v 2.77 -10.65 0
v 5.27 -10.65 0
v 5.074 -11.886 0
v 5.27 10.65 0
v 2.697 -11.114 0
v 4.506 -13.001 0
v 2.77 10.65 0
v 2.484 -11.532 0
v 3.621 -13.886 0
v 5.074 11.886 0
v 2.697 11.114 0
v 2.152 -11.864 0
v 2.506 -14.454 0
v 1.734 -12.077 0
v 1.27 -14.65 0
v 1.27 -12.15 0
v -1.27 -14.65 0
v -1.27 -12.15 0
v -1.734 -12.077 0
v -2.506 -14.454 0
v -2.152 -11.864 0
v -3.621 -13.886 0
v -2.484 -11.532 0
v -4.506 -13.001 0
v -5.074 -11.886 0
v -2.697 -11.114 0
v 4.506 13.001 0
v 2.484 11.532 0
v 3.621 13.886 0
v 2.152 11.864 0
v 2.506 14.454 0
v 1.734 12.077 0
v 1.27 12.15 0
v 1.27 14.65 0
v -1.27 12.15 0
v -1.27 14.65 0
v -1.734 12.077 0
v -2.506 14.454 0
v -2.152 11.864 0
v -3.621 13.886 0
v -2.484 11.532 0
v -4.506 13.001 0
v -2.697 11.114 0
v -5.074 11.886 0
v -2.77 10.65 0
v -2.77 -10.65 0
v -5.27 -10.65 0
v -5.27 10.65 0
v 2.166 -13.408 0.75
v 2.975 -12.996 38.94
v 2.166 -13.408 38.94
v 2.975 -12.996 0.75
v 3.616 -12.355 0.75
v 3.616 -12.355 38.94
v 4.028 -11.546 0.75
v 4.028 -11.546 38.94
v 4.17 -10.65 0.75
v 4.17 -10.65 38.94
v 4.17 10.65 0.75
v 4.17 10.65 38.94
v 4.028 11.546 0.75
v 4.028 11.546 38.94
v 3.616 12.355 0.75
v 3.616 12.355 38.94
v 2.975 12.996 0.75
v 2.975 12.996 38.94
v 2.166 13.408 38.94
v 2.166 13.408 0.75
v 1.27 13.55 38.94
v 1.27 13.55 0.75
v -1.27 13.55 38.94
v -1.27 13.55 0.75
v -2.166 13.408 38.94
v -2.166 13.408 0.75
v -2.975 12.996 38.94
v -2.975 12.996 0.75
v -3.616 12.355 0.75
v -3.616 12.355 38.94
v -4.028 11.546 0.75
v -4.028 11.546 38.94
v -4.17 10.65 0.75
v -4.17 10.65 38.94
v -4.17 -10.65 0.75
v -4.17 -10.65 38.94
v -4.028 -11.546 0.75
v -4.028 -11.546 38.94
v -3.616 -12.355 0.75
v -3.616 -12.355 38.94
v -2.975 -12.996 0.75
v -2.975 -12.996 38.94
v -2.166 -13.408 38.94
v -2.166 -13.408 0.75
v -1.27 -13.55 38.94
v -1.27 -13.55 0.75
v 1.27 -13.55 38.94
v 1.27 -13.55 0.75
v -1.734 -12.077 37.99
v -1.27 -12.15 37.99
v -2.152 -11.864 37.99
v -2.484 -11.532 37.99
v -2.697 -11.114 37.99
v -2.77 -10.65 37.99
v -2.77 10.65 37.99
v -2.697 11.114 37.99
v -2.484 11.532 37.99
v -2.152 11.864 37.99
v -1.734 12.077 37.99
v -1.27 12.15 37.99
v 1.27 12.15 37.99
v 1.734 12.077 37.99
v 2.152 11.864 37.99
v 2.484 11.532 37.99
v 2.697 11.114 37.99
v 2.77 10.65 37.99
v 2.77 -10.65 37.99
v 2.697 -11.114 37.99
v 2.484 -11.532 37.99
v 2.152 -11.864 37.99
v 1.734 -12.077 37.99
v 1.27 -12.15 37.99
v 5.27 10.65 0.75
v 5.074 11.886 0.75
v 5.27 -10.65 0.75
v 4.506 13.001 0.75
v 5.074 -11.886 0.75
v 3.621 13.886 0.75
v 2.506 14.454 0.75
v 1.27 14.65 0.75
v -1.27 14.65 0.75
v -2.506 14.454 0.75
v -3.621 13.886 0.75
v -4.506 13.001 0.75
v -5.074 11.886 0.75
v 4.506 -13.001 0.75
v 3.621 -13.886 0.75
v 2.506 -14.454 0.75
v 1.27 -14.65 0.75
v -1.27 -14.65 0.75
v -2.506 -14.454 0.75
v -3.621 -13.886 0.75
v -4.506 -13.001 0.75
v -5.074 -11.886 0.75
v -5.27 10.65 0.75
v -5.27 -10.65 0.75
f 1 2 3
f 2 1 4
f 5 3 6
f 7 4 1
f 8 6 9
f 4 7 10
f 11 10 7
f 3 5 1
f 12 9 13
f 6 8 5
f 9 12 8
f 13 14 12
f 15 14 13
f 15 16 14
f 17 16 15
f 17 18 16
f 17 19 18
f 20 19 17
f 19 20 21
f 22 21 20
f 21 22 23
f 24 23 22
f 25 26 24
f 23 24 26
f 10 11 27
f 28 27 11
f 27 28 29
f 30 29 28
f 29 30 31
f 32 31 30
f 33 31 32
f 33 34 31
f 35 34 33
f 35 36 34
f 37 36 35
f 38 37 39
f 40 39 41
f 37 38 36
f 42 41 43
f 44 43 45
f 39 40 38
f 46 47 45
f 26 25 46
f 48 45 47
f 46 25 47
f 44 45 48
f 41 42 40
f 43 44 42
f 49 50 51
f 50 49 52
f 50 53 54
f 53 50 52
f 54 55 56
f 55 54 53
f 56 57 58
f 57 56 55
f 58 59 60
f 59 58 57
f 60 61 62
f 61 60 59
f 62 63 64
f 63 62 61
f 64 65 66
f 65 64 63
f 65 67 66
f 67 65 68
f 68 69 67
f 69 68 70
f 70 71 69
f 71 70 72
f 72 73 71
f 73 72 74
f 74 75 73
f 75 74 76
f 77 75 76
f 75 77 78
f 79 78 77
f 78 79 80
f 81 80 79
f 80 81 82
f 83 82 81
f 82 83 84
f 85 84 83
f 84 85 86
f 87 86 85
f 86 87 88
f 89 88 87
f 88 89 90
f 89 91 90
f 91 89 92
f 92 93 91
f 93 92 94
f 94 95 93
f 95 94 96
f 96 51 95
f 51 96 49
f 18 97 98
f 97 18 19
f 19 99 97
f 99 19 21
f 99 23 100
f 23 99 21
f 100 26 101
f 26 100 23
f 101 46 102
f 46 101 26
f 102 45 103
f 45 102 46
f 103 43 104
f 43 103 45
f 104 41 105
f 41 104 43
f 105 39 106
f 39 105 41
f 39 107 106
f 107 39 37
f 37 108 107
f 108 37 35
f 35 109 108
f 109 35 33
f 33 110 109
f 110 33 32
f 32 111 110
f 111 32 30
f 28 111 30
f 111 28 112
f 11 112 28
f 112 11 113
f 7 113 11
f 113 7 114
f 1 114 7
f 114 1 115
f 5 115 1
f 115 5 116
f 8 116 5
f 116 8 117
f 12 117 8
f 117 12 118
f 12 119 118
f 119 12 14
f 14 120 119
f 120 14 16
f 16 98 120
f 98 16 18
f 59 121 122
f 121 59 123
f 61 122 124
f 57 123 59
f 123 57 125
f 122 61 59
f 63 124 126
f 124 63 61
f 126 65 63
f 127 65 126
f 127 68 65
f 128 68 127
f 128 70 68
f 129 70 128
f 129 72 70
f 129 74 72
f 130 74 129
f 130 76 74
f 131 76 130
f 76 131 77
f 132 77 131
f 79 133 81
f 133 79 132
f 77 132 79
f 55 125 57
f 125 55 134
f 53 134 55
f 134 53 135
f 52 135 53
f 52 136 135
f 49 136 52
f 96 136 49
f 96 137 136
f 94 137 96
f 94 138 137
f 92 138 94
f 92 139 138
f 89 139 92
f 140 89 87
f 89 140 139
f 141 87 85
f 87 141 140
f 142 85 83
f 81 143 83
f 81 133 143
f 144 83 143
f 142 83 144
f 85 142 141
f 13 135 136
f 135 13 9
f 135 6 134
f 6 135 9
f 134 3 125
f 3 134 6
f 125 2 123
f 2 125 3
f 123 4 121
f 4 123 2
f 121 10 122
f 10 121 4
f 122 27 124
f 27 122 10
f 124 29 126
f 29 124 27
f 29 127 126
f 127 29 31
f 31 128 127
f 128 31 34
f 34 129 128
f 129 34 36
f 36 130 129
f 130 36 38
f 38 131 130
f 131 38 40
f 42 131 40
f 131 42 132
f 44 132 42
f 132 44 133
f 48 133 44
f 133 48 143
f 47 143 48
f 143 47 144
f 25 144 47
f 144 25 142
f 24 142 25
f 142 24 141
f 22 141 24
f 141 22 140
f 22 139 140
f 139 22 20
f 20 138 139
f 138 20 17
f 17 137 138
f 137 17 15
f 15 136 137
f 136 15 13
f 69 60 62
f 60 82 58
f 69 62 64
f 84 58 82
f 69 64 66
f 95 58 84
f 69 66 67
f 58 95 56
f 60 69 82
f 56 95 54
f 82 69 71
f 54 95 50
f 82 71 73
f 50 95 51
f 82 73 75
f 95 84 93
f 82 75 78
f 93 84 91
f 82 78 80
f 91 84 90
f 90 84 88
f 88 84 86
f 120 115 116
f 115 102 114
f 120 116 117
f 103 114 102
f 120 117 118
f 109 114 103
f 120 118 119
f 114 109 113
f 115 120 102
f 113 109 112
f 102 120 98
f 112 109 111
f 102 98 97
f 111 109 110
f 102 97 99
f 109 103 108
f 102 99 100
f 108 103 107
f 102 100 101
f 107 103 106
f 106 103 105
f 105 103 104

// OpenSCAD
// electronics_cover.scad
//
// The portion of an electronics cover for an upright bluetooth serial module that sticks up 
// from the rest of the electronics.
//
// By Gregg Christopher, 2015
// This file is public domain

slop = 0.01;

ps = 0.1 * 25.4;

// 0, 0 = centered at origin
module pin_strip(min_x, min_y, max_x, max_y) {
  translate([(min_x) * ps, (min_y) * ps])
  square([(max_x - min_x + 1) * ps, (max_y - min_y + 1) * ps]);
  
}


module bluefruit_holder() {
  square([ps, 21.3], center = true);
}

  linear_extrude(height = 38)
  difference() {
    offset(r = 2.9, $fn = 20)
    bluefruit_holder();

    offset(r = 1.5, $fn = 20)
    bluefruit_holder();
  }

  linear_extrude(height = 0.75)
  difference() {
    offset(r = 4, $fn = 20)
    bluefruit_holder();

    offset(r = 1.5, $fn = 20)
    bluefruit_holder();
  }

  translate([0, 0, 38-slop])
  linear_extrude(height = 0.95)
  difference() {
    offset(r = 2.9, $fn = 20)
    bluefruit_holder();
  }
